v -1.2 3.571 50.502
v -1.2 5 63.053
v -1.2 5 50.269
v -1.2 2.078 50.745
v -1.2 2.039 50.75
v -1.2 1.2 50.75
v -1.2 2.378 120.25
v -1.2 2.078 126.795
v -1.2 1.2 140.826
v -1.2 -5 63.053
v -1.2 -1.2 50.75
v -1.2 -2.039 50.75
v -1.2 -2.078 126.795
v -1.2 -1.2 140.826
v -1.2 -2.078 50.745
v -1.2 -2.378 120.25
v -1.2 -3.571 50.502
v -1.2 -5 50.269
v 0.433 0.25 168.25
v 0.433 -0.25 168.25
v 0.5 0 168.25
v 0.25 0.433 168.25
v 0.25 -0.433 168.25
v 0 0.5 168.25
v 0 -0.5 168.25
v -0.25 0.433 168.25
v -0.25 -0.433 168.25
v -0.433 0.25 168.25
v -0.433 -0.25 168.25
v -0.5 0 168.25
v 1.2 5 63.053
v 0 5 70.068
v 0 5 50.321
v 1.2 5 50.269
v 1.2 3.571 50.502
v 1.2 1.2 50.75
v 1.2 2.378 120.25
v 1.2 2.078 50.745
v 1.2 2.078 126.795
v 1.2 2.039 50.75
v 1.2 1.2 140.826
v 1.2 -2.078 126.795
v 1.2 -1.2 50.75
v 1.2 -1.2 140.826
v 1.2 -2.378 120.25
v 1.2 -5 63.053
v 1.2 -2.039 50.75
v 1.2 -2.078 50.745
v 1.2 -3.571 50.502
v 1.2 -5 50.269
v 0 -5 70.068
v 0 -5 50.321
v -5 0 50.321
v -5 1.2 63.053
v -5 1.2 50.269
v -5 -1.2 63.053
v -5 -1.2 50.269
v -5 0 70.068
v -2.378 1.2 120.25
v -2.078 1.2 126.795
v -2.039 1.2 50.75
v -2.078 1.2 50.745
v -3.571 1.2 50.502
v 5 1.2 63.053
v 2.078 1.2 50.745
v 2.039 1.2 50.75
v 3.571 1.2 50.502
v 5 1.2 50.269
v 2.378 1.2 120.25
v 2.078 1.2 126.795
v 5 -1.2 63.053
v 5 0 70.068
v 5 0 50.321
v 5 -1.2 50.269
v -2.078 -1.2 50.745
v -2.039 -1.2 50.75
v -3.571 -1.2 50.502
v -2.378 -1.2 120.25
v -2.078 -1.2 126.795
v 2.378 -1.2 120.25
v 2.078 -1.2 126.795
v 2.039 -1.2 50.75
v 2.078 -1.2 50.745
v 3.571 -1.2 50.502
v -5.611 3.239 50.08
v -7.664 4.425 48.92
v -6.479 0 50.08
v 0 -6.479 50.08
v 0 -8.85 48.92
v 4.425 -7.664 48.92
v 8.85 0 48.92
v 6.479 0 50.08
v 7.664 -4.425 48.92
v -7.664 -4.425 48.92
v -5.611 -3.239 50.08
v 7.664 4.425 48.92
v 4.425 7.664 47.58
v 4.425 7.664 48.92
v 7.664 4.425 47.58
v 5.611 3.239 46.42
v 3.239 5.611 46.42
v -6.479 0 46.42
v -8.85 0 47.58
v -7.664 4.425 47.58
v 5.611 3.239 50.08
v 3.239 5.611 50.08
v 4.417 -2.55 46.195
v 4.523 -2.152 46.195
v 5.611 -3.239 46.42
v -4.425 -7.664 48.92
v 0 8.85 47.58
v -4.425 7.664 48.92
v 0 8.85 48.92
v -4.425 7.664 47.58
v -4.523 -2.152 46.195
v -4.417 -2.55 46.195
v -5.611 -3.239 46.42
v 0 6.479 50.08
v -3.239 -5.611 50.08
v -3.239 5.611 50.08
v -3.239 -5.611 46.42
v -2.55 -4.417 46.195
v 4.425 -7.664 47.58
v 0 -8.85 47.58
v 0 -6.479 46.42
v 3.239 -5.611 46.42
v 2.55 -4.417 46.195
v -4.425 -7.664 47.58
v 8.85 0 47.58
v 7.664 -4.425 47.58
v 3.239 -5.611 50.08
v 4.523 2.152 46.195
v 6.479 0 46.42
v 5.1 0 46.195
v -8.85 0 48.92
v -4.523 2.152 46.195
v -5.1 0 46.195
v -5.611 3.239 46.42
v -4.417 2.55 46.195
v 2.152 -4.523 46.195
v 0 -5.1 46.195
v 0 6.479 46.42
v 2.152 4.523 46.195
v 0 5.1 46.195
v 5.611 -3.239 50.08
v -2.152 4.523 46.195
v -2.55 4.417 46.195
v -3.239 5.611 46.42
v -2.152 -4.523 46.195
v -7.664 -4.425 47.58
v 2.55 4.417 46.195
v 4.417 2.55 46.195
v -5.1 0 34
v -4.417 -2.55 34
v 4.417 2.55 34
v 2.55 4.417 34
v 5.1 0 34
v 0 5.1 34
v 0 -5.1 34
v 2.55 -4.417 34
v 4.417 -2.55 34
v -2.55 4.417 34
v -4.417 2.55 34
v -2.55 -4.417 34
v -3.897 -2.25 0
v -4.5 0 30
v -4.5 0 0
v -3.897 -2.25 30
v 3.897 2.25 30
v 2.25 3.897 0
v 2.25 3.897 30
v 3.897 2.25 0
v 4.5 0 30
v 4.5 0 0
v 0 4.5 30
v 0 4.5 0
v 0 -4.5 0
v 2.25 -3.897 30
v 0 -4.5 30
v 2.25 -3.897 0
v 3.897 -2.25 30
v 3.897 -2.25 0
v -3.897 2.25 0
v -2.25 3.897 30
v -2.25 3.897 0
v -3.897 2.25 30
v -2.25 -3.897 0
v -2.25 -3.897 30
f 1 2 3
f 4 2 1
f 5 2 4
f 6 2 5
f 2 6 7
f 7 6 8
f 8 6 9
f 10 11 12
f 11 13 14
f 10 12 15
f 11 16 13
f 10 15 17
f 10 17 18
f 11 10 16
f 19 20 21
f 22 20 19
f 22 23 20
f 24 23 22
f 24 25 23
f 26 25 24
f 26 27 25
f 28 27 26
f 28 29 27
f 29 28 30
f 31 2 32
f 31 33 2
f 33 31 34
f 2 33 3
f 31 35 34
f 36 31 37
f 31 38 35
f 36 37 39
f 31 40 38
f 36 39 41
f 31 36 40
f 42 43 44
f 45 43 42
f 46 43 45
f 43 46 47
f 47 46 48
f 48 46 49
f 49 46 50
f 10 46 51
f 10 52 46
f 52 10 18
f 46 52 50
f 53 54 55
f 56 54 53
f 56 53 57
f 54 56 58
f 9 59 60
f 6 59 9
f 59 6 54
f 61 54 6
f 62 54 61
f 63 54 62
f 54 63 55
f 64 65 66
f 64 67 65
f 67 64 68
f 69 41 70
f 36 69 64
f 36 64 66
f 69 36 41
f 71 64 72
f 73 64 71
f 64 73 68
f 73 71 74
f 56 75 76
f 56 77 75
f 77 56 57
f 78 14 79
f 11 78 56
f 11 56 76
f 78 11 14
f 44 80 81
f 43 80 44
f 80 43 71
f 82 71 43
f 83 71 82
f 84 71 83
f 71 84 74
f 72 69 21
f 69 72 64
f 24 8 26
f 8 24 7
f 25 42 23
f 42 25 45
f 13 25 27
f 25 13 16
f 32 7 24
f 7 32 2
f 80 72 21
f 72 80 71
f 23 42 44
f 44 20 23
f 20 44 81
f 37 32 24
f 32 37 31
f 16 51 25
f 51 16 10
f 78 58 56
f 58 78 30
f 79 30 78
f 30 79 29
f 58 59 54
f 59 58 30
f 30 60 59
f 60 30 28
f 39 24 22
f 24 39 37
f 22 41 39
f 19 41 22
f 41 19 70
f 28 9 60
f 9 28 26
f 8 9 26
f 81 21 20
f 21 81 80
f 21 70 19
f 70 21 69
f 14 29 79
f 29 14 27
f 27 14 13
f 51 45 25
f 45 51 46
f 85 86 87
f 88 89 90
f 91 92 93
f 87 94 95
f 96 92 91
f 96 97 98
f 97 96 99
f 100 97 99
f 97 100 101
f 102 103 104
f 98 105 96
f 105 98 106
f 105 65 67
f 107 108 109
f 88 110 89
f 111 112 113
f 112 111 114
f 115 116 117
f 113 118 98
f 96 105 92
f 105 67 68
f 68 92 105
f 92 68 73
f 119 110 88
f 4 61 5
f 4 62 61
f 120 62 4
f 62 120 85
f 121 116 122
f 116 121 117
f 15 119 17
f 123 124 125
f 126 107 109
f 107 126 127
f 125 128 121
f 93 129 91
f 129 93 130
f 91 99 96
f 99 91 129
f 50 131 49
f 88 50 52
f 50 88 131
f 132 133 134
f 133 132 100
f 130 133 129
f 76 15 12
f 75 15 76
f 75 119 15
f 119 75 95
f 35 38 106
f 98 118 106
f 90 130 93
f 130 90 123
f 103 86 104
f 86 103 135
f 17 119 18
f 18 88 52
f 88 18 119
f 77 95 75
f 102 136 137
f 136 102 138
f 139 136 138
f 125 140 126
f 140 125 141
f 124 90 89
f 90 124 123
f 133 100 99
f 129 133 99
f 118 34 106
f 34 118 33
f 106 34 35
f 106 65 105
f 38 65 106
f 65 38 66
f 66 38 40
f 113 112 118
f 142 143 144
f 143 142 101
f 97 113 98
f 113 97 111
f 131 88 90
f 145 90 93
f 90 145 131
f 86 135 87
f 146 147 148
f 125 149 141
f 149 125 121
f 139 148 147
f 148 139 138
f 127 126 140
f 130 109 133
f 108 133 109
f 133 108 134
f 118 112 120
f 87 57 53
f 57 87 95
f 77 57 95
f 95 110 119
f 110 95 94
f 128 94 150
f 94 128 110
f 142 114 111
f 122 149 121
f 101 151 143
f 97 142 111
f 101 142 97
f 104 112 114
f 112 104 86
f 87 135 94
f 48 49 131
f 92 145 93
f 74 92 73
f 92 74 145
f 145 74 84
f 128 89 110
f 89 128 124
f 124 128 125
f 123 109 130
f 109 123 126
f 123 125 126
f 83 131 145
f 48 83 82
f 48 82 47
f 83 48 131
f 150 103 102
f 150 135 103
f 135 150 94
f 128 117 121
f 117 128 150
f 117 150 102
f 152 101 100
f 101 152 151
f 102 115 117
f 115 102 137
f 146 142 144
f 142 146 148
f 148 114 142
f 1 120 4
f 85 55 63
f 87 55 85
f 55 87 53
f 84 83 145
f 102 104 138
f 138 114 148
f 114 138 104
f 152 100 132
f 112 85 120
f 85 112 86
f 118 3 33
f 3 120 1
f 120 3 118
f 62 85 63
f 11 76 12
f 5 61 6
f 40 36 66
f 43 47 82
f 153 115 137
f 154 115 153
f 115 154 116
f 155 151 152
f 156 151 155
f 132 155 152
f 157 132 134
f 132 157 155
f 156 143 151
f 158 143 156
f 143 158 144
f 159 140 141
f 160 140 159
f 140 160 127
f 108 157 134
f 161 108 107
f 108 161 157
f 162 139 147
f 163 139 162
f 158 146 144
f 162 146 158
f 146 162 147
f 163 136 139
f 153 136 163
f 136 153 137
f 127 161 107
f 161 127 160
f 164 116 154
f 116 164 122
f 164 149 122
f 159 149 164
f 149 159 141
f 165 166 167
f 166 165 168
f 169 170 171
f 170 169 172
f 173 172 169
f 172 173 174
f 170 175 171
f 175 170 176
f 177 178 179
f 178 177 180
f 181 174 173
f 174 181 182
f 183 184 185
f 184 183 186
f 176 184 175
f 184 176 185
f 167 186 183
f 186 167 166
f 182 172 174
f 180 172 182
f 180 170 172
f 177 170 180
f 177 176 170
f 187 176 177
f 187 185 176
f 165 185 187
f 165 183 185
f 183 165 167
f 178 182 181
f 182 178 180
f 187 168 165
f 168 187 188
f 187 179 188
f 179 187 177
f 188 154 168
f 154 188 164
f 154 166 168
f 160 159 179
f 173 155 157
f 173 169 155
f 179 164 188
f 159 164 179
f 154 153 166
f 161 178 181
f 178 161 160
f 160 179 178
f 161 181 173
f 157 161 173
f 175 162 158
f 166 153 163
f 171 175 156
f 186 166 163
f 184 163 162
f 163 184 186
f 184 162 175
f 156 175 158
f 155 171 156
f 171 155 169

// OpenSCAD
$fn=12;
/*
post height 1: 14.25mm
post dia 1: 9.15mm
post dia 1 2/ protrusion: 10.2mm
post height 2: 34mm (rounded at top)
post dia 2: 9mm
base dia: 17.7mm
*/

cylinder(h=34, r=4.5);
translate([0,0,30]) cylinder(h=4,r1=4.5,r2=5.1);
translate([0,0,34]) {
    cylinder(h=14.25, r=5.1);
    translate([0,0,14.25]) {
        resize([17.7,17.7,5]) sphere(r=3);
        intersection() {
            union() {
                translate([-1.2,-5,0]) linear_extrude(120) square([2.4,10]);
                translate([-5,-1.2,0]) linear_extrude(120) square([10,2.4]);
            }
            cylinder(h=120,r1=6,r2=0.5);
        }
    }
}
